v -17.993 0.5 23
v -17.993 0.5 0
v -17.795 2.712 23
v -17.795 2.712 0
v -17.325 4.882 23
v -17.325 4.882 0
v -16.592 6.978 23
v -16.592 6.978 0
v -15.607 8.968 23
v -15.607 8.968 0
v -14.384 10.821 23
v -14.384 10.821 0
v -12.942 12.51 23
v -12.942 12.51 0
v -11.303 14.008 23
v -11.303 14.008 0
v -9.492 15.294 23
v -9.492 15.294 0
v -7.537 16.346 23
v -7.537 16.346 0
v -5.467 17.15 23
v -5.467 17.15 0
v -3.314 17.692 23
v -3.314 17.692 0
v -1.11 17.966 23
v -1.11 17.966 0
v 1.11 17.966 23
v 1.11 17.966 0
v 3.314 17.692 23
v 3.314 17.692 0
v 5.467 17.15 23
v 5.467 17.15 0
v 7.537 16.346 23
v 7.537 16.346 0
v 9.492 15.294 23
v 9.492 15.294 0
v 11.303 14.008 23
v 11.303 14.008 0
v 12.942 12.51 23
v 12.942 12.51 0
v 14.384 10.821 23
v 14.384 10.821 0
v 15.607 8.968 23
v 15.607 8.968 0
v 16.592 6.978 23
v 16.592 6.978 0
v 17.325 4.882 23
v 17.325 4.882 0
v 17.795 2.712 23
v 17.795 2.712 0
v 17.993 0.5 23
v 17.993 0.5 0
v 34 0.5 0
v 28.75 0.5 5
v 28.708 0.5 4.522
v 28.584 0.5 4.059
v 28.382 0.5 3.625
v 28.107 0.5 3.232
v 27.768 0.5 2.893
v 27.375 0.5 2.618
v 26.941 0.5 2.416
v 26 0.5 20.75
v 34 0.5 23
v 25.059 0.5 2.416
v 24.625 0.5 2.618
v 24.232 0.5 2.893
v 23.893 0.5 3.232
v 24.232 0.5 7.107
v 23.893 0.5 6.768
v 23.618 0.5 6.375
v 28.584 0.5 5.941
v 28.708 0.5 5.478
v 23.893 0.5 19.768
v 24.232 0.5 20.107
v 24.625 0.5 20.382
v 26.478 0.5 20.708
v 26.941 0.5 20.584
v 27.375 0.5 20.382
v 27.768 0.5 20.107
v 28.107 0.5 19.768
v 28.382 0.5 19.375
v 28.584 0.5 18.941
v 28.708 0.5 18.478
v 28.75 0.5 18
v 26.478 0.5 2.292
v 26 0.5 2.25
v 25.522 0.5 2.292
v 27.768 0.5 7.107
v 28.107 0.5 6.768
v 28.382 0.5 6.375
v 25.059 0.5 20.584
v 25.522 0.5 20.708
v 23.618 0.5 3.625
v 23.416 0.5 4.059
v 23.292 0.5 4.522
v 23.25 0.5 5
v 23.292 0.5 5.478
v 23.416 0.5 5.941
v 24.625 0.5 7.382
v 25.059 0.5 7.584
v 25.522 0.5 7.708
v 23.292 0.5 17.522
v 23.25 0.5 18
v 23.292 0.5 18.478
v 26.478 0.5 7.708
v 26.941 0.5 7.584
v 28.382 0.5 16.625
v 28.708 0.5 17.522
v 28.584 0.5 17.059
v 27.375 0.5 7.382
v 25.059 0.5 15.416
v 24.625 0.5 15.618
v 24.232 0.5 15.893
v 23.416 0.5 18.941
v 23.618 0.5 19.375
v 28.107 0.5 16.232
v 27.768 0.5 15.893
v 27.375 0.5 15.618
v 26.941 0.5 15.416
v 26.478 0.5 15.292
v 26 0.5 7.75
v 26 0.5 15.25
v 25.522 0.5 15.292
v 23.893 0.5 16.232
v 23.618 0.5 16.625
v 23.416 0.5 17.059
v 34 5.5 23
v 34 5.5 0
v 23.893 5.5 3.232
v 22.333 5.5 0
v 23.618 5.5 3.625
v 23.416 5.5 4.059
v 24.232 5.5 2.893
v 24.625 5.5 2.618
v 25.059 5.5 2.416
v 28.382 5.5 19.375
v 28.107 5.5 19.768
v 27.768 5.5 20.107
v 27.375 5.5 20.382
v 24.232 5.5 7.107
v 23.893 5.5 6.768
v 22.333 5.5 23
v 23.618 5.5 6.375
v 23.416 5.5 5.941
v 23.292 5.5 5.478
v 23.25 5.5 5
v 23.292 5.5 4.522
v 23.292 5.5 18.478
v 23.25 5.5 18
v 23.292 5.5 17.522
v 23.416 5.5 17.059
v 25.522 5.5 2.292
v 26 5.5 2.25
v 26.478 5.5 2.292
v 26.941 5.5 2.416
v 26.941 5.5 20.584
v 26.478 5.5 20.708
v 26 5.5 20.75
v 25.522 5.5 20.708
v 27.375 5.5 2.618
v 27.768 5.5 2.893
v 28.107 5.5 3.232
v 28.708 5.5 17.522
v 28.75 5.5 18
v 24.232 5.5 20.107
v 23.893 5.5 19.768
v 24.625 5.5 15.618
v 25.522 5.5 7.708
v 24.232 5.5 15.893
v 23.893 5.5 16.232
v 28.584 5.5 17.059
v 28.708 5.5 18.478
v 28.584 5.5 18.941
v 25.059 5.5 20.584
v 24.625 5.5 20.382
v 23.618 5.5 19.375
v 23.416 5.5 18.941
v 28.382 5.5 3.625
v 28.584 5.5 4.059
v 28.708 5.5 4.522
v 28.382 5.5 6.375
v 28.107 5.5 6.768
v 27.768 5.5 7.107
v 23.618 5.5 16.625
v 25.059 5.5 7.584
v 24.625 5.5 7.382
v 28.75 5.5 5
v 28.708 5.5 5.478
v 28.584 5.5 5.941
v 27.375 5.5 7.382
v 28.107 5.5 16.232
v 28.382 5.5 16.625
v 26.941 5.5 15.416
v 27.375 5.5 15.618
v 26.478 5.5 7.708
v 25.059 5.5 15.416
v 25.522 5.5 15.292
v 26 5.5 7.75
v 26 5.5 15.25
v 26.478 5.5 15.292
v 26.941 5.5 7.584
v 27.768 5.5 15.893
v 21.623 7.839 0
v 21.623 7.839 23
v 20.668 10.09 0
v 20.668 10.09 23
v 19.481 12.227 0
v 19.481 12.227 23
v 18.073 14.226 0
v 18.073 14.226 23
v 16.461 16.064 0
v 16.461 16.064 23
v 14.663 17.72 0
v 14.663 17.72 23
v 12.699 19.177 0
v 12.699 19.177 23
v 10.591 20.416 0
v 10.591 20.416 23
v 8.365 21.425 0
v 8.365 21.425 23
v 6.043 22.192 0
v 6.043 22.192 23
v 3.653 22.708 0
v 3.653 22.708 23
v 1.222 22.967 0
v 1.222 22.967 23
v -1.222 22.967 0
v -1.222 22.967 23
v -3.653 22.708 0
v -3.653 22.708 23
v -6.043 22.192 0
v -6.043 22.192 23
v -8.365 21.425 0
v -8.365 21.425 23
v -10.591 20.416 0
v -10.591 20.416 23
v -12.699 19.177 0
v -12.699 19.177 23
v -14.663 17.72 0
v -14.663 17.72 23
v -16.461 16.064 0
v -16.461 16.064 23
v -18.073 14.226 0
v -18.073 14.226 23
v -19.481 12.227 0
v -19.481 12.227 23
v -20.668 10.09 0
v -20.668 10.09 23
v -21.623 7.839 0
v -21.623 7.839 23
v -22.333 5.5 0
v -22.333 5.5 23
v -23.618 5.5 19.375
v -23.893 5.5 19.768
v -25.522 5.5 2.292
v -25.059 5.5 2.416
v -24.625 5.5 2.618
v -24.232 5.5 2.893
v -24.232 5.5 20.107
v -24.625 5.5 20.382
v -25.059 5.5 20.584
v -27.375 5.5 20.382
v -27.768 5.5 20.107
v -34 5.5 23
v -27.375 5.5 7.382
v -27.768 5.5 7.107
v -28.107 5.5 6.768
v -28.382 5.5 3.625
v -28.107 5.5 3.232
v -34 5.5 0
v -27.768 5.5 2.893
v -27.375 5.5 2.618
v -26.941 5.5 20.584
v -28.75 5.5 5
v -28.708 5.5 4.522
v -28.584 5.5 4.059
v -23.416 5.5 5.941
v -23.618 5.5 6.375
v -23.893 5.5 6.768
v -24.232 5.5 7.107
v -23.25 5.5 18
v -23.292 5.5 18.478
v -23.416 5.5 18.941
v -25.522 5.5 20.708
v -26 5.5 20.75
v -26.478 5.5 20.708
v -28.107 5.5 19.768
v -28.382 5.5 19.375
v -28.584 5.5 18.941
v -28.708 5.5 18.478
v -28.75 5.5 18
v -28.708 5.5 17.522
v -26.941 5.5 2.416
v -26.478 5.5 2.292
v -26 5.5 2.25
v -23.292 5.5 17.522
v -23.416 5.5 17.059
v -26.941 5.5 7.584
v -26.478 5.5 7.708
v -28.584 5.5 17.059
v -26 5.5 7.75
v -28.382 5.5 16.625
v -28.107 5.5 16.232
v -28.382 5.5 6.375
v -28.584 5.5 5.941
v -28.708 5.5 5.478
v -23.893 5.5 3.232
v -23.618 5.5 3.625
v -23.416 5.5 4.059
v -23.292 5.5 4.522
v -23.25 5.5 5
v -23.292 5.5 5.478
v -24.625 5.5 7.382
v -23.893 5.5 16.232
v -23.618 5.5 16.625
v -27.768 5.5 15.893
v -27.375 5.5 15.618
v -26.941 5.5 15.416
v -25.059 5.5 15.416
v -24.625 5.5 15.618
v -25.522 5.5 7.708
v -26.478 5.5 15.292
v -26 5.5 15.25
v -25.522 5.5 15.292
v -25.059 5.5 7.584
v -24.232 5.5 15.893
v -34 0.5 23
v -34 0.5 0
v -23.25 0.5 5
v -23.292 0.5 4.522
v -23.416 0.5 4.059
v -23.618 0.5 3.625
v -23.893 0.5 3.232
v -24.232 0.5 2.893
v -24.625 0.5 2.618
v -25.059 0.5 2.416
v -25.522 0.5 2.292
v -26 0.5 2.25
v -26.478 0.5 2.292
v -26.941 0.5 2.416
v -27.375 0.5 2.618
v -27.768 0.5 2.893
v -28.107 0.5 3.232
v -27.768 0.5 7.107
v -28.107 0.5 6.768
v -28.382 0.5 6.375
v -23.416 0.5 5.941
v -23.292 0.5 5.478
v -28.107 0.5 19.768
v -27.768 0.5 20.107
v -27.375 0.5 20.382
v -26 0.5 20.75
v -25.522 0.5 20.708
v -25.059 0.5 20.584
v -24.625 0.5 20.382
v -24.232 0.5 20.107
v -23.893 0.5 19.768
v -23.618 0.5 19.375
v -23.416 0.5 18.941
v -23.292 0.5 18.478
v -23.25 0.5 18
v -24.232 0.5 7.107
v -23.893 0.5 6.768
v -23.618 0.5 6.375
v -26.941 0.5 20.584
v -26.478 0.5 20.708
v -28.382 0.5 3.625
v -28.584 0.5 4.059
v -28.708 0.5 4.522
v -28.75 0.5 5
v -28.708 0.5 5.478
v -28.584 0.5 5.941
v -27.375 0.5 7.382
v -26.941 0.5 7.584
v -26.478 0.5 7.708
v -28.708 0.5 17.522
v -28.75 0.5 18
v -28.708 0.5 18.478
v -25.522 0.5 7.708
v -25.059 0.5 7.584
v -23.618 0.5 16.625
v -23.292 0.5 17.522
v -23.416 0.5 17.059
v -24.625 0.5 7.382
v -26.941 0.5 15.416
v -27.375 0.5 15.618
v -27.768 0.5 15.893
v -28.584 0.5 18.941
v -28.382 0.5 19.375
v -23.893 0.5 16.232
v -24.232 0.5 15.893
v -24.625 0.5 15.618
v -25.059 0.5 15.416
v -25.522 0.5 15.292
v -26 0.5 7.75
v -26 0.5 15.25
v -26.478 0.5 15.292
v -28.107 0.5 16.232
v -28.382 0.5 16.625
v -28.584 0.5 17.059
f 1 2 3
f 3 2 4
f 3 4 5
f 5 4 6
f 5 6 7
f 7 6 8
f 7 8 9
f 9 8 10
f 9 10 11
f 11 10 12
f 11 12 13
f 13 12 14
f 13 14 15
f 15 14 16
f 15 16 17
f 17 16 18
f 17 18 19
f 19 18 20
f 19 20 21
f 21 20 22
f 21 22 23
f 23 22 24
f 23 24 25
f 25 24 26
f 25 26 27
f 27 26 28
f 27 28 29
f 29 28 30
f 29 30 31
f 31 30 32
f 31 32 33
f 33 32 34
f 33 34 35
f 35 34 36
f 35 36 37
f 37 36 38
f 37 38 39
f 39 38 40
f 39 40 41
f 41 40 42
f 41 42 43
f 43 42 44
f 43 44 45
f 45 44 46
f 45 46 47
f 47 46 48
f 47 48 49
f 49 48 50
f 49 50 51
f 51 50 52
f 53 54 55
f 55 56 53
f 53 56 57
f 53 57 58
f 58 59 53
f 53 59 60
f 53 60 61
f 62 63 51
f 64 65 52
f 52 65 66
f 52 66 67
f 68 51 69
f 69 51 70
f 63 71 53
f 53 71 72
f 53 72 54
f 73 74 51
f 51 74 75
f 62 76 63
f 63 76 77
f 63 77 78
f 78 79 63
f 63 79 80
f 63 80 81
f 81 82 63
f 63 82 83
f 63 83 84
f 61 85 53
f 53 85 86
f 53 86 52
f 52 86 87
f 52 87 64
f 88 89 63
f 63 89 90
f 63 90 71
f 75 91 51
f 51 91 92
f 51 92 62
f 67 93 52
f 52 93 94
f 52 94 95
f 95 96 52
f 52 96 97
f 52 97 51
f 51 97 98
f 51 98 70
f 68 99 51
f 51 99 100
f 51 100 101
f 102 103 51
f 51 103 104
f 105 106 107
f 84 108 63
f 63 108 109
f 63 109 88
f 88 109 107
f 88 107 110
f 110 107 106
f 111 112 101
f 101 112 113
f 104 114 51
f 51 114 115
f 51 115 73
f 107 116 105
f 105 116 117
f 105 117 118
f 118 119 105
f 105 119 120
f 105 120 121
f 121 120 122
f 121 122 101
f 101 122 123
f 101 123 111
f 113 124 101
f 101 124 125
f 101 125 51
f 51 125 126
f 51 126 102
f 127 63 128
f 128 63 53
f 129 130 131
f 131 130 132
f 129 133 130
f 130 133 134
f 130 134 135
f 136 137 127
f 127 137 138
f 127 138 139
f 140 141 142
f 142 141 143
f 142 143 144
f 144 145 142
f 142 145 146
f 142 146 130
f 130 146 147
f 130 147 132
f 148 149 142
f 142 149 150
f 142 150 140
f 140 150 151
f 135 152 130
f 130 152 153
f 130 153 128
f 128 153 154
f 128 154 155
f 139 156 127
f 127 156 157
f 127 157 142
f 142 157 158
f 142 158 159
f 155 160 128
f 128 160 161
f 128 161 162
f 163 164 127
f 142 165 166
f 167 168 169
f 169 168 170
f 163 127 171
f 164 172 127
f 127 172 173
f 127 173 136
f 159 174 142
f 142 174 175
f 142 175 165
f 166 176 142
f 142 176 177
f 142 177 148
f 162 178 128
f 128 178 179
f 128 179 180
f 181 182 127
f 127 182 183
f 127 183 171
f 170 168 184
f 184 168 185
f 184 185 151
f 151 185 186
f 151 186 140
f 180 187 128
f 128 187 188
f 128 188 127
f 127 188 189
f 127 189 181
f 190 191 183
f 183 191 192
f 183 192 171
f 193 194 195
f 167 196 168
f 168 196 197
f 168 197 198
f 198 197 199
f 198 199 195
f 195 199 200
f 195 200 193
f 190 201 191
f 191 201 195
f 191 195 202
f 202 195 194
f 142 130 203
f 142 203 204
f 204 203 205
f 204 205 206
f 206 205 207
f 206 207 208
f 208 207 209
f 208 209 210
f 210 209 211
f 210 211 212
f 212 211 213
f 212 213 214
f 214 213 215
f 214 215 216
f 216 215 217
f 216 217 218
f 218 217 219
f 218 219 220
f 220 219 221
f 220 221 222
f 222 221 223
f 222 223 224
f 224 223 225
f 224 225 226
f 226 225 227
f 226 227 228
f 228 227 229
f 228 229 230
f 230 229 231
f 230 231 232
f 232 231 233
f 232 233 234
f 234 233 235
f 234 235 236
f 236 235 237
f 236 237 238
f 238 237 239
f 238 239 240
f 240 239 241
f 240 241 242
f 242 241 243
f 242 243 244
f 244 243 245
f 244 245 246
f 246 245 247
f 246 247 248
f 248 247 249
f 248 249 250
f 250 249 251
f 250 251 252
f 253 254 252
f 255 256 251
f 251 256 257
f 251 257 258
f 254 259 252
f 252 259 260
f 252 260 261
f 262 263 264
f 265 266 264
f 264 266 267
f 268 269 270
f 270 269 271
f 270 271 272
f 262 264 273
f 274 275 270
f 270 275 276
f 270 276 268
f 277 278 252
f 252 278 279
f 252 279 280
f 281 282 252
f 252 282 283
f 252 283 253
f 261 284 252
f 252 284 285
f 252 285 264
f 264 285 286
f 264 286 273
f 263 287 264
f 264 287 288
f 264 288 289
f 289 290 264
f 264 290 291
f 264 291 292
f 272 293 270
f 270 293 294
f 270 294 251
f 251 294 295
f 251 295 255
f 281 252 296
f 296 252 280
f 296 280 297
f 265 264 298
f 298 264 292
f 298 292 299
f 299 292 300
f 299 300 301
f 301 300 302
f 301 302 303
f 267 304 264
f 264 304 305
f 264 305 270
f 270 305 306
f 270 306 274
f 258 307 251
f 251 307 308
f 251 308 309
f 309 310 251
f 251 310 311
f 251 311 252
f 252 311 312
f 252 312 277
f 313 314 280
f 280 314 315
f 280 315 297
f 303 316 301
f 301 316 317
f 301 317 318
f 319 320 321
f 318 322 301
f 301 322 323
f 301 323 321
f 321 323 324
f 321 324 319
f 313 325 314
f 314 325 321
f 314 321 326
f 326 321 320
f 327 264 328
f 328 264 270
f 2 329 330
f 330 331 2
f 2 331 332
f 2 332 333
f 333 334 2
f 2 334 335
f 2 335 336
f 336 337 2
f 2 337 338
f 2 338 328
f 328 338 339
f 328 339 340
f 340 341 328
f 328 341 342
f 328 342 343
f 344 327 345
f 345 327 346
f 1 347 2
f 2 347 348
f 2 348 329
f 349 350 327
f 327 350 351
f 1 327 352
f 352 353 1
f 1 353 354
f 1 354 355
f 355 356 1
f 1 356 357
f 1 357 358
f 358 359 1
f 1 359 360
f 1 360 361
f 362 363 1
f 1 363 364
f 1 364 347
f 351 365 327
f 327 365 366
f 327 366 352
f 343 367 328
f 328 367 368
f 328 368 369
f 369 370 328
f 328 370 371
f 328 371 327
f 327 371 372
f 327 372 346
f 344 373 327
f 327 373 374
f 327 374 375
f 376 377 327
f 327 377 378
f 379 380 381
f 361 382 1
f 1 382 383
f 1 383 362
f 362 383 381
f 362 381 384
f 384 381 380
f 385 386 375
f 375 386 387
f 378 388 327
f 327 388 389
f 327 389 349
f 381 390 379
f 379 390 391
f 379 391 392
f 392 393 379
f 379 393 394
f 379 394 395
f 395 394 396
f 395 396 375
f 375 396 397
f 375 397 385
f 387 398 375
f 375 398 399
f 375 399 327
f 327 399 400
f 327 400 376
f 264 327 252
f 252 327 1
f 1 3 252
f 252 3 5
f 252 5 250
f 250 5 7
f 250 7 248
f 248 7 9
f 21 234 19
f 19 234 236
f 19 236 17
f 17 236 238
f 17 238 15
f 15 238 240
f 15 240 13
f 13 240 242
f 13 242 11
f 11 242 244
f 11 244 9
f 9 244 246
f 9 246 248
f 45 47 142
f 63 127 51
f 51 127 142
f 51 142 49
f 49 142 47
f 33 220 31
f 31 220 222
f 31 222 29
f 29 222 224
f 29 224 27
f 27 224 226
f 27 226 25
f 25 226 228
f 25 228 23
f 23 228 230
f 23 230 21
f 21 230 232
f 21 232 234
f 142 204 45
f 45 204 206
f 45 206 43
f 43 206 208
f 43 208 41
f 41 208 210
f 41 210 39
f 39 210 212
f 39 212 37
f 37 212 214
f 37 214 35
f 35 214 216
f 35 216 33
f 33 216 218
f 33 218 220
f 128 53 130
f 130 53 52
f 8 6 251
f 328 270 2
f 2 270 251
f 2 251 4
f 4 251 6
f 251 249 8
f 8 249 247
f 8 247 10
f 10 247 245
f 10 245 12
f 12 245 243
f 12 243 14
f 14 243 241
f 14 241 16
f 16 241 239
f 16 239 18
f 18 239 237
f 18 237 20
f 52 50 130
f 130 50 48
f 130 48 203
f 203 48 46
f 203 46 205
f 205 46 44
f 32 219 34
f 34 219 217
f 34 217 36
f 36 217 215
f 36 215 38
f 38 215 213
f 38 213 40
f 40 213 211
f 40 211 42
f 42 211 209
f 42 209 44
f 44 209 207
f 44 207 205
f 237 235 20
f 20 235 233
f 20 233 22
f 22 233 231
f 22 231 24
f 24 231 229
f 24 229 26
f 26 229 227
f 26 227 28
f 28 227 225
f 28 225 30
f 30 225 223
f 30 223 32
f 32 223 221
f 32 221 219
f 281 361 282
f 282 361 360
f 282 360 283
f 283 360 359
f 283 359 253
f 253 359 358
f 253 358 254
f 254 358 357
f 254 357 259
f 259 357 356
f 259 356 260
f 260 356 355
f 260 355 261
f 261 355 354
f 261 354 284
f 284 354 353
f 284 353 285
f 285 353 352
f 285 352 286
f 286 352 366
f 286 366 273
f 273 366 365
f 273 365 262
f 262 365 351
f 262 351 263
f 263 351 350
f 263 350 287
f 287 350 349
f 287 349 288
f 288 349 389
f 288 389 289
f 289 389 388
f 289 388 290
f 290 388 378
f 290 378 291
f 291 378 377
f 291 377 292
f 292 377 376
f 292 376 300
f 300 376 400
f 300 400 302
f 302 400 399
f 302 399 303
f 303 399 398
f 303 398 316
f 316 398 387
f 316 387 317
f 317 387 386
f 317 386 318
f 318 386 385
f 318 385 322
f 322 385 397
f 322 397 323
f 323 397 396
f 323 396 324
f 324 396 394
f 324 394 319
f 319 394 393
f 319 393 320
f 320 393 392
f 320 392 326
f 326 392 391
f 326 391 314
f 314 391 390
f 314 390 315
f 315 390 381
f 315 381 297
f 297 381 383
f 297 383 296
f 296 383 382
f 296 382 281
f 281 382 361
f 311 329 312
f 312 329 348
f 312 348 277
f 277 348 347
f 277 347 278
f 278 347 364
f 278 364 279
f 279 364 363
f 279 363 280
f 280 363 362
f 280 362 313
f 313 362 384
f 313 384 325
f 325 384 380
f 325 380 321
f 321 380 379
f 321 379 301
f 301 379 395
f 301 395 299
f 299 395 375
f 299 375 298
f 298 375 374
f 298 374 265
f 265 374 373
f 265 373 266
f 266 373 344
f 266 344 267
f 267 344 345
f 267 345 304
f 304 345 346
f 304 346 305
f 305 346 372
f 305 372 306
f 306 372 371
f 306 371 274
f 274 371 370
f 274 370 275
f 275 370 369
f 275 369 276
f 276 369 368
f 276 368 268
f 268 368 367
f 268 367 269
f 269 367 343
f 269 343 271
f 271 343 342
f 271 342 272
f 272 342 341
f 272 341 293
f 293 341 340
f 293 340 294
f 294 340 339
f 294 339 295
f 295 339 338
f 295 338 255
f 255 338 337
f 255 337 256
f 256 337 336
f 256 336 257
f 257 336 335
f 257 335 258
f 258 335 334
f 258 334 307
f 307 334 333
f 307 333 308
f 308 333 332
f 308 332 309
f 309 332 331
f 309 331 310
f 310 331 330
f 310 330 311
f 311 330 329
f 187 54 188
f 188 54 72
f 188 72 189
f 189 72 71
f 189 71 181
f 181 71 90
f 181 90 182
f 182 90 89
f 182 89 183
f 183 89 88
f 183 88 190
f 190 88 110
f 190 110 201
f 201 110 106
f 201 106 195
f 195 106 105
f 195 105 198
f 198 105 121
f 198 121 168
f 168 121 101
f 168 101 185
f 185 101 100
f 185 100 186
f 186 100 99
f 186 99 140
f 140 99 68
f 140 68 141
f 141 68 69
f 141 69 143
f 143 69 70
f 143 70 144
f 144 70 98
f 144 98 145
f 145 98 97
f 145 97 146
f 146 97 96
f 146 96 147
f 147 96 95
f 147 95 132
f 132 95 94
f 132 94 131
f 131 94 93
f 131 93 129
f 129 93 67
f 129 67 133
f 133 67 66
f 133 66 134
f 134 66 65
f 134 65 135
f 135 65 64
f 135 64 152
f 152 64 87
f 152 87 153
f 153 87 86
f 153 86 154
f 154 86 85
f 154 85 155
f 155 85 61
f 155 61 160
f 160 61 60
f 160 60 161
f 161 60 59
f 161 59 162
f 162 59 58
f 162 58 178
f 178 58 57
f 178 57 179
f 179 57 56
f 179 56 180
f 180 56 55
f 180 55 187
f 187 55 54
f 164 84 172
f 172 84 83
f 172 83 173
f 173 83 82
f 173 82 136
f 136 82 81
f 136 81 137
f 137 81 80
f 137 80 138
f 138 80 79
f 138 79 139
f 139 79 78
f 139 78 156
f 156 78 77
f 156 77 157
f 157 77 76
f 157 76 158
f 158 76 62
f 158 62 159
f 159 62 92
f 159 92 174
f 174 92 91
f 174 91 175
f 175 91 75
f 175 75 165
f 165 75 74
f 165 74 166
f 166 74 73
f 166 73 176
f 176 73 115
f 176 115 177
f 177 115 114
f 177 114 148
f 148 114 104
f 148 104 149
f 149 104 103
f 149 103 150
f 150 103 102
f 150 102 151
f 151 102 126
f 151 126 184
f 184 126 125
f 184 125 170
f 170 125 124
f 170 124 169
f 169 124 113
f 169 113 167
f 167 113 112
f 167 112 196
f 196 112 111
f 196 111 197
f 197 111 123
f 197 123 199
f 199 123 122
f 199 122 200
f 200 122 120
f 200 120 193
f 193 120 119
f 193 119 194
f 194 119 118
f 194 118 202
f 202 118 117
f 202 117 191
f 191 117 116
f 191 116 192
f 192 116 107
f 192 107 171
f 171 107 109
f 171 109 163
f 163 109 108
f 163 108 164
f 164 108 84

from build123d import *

# Parameters (mm, degrees)
BOSS_EXTRUDE1_DEPTH = 23
SKETCH2_R           = 2.75
CUT_EXTRUDE1_DEPTH  = 47.810789355


with BuildPart() as part:
    # Sketch1 → Boss-Extrude1 (new body)
    with BuildSketch(Plane.XY):
        with BuildLine():
            Line((-17.993054215, 0.5), (-34, 0.5))
            Line((-34, 0.5), (-34, 5.5))
            Line((-34, 5.5), (-22.332711434, 5.5))
            ThreePointArc((-22.332711434, 5.5), (0, 23), (22.332711434, 5.5))
            Line((22.332711434, 5.5), (34, 5.5))
            Line((34, 5.5), (34, 0.5))
            Line((34, 0.5), (17.993054215, 0.5))
            ThreePointArc((17.993054215, 0.5), (0, 18), (-17.993054215, 0.5))
        make_face()
    extrude(amount=BOSS_EXTRUDE1_DEPTH)

    # Sketch2 → Cut-Extrude1 (cut, through all)
    with BuildSketch(Plane.XZ.offset(-0.5)):
        with Locations((-26, 18)):
            Circle(SKETCH2_R)
        with Locations((-26, 5)):
            Circle(SKETCH2_R)
        with Locations((26, 5)):
            Circle(SKETCH2_R)
        with Locations((26, 18)):
            Circle(SKETCH2_R)
    extrude(amount=-CUT_EXTRUDE1_DEPTH, mode=Mode.SUBTRACT)


solid = part.part
